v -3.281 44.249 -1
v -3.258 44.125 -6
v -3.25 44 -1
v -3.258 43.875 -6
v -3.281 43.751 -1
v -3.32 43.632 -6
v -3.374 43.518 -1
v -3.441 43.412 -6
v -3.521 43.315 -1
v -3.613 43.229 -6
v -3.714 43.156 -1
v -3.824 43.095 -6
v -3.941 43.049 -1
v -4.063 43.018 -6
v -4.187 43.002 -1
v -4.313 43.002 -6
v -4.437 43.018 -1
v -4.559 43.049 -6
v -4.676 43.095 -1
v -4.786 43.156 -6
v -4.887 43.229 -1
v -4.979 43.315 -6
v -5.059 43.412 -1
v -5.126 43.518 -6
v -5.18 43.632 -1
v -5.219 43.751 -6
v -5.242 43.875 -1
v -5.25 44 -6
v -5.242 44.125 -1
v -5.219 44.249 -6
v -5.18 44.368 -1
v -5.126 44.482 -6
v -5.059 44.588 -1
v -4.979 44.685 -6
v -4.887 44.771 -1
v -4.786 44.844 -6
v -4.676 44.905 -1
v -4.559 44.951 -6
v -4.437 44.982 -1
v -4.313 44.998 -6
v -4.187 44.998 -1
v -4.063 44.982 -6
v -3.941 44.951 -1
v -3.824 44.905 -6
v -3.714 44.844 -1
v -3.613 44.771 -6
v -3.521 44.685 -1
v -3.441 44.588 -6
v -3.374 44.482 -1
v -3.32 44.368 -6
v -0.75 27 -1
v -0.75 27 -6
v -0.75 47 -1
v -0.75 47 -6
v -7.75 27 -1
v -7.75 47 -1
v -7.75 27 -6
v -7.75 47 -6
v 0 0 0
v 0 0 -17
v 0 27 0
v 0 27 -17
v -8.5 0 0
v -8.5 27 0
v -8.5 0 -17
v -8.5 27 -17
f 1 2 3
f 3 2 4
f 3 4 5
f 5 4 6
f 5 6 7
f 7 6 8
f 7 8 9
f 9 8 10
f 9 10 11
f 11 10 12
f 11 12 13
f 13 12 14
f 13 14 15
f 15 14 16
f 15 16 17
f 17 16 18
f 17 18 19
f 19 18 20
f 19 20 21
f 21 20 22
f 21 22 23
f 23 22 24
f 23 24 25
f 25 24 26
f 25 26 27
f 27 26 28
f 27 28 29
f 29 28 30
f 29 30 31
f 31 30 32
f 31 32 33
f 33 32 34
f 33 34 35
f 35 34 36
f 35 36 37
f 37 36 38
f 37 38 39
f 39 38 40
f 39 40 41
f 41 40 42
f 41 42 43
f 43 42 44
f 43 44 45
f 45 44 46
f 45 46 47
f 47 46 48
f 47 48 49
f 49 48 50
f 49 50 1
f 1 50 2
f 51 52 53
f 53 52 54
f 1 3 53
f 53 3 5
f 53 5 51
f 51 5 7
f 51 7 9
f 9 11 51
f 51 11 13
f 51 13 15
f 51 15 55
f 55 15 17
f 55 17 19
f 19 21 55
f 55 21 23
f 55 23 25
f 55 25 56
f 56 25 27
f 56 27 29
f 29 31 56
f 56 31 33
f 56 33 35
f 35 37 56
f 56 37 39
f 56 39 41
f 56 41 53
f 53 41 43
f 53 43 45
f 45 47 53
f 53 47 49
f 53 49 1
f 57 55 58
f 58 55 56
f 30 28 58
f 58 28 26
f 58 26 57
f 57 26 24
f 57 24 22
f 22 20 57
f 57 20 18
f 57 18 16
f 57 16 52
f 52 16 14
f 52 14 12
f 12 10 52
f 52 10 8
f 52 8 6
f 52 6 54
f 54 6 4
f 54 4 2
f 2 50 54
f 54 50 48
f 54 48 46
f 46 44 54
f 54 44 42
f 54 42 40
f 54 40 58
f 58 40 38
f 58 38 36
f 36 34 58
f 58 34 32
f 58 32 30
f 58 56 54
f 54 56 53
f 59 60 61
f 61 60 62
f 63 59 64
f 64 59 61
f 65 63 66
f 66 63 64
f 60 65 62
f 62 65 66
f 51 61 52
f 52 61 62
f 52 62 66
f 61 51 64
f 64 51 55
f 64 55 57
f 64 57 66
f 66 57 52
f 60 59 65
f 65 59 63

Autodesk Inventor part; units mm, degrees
ref_plane "YZ Plane" through (0, 0, 0) normal (1, 0, 0) x (0, 1, 0)
ref_plane "XZ Plane" through (0, 0, 0) normal (0, 1, 0) x (-1, 0, 0)
ref_plane "XY Plane" through (0, 0, 0) normal (0, 0, 1) x (1, 0, 0)
sketch "Sketch1" plane through (0, 0, 0) normal (0, 1, 0) x (-1, 0, 0)
  line L0 (0, 0) -> (8.5, 0)
  line L1 (8.5, 0) -> (8.5, -17)
  line L2 (8.5, -17) -> (0, -17)
  line L3 (0, -17) -> (0, 0)
  dimension "d0" = 8.5
  dimension "d1" = 17
extrude "Extrusion1" add sketch "Sketch1" along normal blind 27
sketch "Sketch2" plane through (0, 27, 0) normal (0, 1, 0) x (1, 0, 0)
  line L0 (-7.75, 1) -> (-0.75, 1)
  line L1 (-0.75, 1) -> (-0.75, 6)
  line L2 (-0.75, 6) -> (-7.75, 6)
  line L3 (-7.75, 6) -> (-7.75, 1)
  line L4 (-8.5, 0) -> (0, 0) projected
  line L5 (-8.5, 17) -> (-8.5, 0) projected
  dimension "d4" = 7
  dimension "d5" = 5
  dimension "d6" = 1
  dimension "d7" = 0.75
extrude "Extrusion2" add sketch "Sketch2" along normal blind 20
sketch "Sketch3" plane through (-0.75, 27, -6) normal (0, 0, -1) x (-1, 0, 0)
  circle A0 centre (3.5, 17) radius 1
  line L0 (7, 0) -> (7, 20) projected
  line L1 (-0.75, 0) -> (7.75, 0) projected
  point P0 (-0.75, -27)
  dimension "d10" = 2
  dimension "d11" = 3.5
  dimension "d12" = 17
extrude "Extrusion3" cut sketch "Sketch3" against normal through all
properties part number "support_axe_radio"
